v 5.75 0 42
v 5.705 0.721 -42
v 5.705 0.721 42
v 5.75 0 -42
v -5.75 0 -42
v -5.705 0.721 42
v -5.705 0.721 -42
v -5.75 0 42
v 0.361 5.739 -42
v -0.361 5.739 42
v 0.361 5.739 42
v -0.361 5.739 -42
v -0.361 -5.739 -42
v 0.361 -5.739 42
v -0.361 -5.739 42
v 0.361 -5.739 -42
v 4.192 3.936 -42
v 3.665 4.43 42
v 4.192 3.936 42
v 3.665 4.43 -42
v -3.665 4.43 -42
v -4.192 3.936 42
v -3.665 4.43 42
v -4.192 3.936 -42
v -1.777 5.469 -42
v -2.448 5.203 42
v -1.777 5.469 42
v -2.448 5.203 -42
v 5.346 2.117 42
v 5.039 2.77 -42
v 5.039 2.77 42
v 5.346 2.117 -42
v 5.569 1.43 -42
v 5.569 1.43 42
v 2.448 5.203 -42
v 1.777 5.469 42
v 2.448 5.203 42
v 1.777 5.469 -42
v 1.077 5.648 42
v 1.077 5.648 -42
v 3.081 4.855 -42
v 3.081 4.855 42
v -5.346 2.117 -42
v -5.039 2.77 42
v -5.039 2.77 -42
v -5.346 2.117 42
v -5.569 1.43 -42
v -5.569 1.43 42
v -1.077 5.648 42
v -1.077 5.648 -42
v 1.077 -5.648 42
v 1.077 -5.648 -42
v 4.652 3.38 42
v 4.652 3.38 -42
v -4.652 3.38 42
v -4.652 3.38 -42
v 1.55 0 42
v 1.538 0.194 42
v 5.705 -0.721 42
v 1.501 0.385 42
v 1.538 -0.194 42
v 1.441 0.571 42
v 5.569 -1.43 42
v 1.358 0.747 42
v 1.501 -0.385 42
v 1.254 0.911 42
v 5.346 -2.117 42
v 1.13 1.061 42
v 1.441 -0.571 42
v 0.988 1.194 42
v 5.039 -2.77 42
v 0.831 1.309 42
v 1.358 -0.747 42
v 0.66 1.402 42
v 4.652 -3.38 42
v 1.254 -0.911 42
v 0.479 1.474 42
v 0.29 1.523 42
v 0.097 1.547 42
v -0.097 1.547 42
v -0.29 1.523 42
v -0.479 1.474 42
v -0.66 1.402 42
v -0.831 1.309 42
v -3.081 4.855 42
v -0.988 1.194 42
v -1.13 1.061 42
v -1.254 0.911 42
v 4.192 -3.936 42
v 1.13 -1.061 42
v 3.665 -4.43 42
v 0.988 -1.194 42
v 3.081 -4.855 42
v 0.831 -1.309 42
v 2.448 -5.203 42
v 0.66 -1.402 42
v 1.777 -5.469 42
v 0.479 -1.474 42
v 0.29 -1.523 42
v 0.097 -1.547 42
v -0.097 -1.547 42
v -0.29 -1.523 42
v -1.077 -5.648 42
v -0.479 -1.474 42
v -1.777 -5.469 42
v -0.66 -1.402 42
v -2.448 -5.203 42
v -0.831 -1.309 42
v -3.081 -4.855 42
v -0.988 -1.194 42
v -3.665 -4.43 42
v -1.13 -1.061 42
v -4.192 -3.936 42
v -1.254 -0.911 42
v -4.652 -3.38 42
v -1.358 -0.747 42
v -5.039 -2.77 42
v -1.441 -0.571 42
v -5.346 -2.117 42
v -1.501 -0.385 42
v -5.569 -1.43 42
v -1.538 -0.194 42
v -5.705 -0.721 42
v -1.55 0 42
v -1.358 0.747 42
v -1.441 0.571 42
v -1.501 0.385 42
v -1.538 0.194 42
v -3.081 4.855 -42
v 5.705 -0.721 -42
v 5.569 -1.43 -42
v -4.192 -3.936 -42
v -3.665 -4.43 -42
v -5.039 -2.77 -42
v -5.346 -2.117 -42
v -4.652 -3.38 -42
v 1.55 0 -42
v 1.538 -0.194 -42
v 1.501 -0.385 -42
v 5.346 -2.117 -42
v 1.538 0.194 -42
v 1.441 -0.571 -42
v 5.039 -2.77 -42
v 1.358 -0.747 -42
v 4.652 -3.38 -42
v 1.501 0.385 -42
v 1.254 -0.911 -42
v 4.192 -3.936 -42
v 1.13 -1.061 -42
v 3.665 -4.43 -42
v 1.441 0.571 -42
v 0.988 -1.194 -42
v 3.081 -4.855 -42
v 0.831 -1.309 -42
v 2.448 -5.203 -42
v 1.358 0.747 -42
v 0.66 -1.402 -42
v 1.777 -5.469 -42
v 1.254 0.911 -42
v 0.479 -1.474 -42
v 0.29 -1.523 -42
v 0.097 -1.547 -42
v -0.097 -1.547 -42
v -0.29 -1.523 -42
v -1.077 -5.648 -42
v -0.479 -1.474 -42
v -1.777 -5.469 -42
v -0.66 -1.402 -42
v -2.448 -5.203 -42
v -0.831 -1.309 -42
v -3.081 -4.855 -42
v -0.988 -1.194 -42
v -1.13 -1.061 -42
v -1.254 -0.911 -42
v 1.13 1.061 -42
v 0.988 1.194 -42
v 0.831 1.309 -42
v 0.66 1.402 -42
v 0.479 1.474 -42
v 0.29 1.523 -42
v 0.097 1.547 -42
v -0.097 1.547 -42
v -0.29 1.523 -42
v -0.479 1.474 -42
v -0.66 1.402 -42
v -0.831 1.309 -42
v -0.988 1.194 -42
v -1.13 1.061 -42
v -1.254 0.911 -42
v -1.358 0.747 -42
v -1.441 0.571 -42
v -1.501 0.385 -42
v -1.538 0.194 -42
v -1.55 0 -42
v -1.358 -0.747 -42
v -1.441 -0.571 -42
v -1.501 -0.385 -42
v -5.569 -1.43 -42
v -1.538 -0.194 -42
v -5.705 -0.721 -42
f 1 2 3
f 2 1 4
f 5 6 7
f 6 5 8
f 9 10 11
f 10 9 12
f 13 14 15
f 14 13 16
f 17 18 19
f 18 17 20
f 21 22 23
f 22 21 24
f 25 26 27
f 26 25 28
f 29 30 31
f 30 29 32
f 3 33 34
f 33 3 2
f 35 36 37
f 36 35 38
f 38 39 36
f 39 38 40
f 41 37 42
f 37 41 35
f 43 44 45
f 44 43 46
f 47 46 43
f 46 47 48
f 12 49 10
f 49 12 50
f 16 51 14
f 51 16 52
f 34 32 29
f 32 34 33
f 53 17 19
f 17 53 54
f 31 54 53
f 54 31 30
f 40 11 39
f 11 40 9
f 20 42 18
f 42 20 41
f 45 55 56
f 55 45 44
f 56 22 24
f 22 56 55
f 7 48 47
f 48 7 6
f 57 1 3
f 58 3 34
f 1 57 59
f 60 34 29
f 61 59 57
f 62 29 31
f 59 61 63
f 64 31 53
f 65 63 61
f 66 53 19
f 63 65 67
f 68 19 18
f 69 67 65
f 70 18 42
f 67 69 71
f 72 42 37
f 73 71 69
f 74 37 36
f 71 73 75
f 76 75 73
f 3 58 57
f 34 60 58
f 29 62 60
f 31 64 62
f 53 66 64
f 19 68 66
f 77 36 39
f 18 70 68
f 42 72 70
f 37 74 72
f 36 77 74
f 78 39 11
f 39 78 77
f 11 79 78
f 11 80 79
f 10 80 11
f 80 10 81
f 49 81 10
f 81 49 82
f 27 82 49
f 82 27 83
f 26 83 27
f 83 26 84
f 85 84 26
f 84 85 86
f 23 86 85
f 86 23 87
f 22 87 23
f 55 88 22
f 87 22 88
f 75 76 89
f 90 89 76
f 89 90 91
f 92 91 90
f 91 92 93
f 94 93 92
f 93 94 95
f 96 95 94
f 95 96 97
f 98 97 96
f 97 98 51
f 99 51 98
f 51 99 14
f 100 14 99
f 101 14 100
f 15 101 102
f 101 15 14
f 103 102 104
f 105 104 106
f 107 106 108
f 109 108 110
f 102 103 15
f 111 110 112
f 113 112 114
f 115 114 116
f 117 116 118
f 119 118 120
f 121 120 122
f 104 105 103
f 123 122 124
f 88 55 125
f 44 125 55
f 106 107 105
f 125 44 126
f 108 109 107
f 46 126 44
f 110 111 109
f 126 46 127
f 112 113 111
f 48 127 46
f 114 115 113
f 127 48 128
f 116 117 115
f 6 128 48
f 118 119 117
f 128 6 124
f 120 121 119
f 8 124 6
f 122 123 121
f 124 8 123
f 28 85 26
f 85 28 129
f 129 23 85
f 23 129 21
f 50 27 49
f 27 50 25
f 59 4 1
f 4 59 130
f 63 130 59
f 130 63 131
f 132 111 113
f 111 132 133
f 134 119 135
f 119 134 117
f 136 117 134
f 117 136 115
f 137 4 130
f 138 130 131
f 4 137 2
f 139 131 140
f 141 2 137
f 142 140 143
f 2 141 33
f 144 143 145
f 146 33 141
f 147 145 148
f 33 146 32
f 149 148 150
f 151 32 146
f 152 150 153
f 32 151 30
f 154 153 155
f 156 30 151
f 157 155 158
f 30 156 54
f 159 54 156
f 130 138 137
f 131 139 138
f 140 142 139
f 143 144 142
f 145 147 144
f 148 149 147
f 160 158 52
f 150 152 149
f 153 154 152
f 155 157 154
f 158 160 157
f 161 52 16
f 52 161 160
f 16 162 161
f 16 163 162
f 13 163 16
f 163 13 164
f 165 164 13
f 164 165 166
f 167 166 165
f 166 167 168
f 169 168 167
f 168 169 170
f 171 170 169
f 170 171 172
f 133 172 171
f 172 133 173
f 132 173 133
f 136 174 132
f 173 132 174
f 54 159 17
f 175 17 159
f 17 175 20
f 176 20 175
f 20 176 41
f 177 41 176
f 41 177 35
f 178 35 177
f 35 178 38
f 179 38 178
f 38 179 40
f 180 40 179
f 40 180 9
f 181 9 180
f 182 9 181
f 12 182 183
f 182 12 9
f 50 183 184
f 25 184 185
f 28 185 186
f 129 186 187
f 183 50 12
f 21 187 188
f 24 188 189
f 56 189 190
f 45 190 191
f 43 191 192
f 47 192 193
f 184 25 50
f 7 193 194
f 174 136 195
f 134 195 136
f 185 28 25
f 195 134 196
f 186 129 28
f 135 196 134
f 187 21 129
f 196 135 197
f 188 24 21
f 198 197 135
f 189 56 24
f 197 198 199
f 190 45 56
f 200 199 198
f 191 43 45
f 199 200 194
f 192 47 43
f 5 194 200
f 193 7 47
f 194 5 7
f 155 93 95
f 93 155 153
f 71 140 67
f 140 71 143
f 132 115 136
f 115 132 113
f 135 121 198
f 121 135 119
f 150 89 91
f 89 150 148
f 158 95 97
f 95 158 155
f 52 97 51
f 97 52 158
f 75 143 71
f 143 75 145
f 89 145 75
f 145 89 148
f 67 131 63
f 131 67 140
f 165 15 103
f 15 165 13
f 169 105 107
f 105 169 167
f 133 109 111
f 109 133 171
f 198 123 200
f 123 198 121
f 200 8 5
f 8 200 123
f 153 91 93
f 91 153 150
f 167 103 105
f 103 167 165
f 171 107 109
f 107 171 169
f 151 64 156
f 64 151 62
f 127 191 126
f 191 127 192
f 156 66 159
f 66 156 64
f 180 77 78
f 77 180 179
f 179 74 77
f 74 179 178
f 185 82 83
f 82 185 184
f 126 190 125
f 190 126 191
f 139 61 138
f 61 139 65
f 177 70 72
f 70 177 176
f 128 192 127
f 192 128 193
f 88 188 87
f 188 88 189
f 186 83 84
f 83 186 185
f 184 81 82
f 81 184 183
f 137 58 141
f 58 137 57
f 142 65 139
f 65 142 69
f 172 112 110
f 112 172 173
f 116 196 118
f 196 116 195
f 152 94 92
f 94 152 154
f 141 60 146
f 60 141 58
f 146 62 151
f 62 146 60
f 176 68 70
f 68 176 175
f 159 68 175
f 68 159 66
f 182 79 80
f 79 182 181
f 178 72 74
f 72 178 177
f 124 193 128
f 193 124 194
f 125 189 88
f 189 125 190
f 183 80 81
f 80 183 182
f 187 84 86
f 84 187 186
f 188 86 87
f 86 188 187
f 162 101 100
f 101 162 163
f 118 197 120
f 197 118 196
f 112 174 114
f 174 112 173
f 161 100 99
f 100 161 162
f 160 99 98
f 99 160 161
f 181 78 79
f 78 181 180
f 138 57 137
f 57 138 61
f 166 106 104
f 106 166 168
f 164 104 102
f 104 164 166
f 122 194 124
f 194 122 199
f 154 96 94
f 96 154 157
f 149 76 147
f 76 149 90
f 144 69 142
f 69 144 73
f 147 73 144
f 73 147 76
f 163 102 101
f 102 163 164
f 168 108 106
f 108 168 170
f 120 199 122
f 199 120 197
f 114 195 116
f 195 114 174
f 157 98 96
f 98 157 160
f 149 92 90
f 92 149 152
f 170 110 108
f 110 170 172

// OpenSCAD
$fn = 50;


difference() {
	union() {
		translate(v = [0, 0, -42.0000000000]) {
			cylinder(h = 84, r = 5.7500000000);
		}
	}
	union() {
		translate(v = [0, 0, -100.0000000000]) {
			cylinder(h = 200, r = 1.5500000000);
		}
	}
}
